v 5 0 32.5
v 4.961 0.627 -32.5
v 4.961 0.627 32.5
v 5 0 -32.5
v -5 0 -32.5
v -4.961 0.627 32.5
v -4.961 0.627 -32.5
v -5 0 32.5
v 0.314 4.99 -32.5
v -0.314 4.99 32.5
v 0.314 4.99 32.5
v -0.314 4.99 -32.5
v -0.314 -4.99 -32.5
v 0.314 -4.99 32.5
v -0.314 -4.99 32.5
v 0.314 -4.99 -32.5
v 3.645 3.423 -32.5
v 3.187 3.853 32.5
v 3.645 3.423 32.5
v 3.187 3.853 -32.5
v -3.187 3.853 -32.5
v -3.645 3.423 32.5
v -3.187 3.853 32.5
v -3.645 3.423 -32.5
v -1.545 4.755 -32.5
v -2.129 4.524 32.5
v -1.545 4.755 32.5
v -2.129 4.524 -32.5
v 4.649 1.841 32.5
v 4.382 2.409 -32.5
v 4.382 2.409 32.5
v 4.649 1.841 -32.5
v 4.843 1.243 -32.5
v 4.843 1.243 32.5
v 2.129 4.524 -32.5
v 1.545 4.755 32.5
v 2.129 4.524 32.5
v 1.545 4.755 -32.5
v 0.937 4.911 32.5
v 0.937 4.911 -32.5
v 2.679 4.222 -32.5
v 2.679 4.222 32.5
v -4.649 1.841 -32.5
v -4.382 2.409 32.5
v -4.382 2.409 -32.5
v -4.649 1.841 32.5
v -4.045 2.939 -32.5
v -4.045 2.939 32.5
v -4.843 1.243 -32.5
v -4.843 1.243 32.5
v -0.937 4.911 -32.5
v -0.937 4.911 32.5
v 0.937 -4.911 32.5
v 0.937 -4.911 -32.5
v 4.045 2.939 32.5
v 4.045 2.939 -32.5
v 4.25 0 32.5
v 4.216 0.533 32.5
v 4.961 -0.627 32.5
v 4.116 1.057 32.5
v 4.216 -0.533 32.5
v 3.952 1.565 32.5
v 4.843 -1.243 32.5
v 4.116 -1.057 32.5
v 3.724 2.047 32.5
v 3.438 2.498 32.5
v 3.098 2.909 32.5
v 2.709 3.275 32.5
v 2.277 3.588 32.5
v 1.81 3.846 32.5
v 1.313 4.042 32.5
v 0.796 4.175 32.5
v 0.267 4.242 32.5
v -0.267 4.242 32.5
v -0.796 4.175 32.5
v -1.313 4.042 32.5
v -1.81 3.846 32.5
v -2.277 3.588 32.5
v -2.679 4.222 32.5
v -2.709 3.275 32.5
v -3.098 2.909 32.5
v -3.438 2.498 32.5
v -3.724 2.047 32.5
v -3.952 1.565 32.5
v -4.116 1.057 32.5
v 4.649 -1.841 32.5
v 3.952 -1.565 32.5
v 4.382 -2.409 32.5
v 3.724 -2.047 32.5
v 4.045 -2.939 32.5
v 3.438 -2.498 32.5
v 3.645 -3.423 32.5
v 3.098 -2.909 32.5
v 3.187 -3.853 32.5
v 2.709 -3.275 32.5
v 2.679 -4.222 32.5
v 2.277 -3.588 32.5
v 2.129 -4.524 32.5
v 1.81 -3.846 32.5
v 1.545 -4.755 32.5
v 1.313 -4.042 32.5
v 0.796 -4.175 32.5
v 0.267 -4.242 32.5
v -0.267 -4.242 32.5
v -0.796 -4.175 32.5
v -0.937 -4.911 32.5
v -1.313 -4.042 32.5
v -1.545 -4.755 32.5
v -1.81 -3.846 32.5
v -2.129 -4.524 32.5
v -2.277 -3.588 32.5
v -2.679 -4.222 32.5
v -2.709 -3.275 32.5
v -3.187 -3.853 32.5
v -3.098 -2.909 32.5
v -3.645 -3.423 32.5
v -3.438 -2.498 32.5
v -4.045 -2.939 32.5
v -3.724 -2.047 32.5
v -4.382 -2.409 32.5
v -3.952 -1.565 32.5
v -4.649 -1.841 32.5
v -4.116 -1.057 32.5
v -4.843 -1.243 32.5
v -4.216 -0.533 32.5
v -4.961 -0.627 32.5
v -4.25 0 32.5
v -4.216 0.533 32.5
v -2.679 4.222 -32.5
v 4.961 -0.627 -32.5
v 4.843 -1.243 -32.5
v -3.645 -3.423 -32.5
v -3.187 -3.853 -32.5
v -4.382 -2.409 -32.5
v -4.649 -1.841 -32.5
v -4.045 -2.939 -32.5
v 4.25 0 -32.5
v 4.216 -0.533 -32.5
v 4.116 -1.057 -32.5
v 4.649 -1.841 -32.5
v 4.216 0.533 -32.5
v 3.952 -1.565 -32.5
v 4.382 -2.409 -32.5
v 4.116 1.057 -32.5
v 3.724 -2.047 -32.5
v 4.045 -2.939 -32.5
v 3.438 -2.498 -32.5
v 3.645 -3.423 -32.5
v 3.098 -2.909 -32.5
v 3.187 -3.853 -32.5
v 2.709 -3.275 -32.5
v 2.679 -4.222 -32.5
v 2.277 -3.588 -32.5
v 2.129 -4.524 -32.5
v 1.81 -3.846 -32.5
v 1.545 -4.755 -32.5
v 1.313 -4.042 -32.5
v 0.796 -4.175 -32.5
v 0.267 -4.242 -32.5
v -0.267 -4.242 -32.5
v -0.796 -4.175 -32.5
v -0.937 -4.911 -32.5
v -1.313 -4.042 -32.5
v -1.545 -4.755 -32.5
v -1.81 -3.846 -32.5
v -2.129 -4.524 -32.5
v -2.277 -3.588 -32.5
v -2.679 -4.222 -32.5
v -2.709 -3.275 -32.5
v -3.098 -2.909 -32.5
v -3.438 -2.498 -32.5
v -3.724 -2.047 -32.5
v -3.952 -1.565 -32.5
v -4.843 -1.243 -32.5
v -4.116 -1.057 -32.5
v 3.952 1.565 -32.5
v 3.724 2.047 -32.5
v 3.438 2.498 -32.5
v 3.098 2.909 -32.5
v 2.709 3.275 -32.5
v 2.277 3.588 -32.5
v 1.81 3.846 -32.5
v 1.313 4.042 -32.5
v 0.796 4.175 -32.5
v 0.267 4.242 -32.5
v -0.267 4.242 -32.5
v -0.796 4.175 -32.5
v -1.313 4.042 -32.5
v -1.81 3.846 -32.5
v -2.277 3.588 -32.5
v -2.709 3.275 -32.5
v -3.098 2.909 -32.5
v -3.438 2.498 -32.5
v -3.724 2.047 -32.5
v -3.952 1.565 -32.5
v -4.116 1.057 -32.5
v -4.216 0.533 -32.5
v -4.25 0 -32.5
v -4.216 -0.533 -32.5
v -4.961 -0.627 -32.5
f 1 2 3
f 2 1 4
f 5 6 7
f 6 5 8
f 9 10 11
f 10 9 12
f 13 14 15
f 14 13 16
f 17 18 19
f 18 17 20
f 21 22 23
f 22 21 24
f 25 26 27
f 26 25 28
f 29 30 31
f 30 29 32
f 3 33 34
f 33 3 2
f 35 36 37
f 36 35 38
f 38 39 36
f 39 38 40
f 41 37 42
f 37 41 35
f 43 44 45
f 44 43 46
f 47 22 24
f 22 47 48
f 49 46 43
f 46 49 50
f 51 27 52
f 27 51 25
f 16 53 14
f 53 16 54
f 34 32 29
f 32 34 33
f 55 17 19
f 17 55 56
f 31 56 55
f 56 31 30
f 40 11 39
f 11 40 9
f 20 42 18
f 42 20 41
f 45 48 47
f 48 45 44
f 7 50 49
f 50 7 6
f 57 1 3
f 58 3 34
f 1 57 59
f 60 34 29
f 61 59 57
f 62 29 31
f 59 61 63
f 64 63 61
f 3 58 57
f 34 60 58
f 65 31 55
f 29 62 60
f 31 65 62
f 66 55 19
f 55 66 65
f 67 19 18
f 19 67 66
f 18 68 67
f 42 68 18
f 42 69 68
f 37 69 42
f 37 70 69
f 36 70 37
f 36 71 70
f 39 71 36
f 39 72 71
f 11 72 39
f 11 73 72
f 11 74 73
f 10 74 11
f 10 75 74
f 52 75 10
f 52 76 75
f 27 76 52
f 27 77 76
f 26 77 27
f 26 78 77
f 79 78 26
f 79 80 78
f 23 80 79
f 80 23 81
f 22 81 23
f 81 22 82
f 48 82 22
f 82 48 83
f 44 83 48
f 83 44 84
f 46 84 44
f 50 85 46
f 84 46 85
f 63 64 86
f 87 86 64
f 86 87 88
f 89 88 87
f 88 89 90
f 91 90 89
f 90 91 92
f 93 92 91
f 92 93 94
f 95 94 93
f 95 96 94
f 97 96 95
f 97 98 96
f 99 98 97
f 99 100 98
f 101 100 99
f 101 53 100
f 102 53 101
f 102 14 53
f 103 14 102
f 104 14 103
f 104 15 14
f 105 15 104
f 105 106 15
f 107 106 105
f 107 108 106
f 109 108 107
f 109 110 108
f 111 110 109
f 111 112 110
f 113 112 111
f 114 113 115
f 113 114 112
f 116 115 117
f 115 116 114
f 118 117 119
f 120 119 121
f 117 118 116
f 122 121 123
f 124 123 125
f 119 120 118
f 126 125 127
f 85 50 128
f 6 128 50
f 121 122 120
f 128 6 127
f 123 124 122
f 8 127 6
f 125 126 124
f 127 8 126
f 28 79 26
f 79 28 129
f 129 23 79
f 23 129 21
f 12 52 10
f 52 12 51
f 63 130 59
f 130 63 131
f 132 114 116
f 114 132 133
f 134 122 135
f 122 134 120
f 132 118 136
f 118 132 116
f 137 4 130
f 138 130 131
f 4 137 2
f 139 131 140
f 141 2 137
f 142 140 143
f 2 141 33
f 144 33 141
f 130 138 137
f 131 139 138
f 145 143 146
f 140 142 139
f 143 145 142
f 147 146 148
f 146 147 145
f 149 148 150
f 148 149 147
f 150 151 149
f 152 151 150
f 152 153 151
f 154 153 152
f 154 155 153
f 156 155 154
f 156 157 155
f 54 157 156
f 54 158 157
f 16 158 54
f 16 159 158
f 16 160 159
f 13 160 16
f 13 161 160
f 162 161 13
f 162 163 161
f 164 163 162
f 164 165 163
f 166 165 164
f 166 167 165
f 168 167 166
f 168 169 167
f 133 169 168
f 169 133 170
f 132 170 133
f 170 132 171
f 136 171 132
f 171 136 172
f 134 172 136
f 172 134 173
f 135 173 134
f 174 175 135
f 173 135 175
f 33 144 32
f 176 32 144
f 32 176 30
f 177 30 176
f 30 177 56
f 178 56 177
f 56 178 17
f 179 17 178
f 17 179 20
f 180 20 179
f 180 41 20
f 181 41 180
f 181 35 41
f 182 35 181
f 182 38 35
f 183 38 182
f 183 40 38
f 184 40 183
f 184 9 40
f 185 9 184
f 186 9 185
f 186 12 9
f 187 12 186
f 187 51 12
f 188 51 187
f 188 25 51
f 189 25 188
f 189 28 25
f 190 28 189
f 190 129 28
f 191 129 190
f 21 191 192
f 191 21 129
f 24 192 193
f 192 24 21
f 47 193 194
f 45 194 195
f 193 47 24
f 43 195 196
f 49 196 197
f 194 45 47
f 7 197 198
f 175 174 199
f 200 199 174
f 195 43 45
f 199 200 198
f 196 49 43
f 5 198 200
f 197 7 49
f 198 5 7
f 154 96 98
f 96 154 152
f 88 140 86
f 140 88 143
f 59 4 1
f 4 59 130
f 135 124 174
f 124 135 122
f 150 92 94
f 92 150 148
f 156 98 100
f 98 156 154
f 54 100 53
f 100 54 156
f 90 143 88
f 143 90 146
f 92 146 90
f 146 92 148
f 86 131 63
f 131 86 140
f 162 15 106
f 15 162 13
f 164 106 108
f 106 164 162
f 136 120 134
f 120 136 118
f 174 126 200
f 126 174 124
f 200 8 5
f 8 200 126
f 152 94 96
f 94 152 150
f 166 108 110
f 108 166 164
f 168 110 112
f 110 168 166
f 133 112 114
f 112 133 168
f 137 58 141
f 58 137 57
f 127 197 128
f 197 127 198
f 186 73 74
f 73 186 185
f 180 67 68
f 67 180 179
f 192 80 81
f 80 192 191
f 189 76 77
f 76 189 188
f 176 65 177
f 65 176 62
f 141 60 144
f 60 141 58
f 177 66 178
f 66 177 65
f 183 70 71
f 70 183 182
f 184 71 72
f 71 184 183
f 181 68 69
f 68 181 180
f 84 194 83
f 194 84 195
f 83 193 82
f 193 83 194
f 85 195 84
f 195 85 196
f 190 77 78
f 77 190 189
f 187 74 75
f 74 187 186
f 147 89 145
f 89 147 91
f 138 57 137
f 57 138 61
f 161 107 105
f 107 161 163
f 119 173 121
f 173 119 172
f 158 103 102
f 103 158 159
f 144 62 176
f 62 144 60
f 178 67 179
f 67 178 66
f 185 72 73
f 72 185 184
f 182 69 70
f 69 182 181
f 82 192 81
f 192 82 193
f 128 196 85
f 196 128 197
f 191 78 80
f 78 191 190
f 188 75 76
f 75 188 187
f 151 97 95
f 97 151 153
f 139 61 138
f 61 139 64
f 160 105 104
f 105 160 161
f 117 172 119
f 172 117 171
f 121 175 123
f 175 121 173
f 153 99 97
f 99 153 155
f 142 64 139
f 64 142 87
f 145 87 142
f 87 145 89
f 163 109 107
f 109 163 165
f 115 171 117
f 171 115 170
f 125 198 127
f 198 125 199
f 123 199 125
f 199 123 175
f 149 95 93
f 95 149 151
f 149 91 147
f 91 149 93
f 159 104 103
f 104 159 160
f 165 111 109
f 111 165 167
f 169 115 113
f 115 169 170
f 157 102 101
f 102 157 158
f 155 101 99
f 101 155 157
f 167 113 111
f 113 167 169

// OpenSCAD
$fn = 50;


difference() {
	union() {
		translate(v = [0, 0, -32.5000000000]) {
			cylinder(h = 65, r = 5.0000000000);
		}
	}
	union() {
		translate(v = [0, 0, -100.0000000000]) {
			cylinder(h = 200, r = 4.2500000000);
		}
	}
}
